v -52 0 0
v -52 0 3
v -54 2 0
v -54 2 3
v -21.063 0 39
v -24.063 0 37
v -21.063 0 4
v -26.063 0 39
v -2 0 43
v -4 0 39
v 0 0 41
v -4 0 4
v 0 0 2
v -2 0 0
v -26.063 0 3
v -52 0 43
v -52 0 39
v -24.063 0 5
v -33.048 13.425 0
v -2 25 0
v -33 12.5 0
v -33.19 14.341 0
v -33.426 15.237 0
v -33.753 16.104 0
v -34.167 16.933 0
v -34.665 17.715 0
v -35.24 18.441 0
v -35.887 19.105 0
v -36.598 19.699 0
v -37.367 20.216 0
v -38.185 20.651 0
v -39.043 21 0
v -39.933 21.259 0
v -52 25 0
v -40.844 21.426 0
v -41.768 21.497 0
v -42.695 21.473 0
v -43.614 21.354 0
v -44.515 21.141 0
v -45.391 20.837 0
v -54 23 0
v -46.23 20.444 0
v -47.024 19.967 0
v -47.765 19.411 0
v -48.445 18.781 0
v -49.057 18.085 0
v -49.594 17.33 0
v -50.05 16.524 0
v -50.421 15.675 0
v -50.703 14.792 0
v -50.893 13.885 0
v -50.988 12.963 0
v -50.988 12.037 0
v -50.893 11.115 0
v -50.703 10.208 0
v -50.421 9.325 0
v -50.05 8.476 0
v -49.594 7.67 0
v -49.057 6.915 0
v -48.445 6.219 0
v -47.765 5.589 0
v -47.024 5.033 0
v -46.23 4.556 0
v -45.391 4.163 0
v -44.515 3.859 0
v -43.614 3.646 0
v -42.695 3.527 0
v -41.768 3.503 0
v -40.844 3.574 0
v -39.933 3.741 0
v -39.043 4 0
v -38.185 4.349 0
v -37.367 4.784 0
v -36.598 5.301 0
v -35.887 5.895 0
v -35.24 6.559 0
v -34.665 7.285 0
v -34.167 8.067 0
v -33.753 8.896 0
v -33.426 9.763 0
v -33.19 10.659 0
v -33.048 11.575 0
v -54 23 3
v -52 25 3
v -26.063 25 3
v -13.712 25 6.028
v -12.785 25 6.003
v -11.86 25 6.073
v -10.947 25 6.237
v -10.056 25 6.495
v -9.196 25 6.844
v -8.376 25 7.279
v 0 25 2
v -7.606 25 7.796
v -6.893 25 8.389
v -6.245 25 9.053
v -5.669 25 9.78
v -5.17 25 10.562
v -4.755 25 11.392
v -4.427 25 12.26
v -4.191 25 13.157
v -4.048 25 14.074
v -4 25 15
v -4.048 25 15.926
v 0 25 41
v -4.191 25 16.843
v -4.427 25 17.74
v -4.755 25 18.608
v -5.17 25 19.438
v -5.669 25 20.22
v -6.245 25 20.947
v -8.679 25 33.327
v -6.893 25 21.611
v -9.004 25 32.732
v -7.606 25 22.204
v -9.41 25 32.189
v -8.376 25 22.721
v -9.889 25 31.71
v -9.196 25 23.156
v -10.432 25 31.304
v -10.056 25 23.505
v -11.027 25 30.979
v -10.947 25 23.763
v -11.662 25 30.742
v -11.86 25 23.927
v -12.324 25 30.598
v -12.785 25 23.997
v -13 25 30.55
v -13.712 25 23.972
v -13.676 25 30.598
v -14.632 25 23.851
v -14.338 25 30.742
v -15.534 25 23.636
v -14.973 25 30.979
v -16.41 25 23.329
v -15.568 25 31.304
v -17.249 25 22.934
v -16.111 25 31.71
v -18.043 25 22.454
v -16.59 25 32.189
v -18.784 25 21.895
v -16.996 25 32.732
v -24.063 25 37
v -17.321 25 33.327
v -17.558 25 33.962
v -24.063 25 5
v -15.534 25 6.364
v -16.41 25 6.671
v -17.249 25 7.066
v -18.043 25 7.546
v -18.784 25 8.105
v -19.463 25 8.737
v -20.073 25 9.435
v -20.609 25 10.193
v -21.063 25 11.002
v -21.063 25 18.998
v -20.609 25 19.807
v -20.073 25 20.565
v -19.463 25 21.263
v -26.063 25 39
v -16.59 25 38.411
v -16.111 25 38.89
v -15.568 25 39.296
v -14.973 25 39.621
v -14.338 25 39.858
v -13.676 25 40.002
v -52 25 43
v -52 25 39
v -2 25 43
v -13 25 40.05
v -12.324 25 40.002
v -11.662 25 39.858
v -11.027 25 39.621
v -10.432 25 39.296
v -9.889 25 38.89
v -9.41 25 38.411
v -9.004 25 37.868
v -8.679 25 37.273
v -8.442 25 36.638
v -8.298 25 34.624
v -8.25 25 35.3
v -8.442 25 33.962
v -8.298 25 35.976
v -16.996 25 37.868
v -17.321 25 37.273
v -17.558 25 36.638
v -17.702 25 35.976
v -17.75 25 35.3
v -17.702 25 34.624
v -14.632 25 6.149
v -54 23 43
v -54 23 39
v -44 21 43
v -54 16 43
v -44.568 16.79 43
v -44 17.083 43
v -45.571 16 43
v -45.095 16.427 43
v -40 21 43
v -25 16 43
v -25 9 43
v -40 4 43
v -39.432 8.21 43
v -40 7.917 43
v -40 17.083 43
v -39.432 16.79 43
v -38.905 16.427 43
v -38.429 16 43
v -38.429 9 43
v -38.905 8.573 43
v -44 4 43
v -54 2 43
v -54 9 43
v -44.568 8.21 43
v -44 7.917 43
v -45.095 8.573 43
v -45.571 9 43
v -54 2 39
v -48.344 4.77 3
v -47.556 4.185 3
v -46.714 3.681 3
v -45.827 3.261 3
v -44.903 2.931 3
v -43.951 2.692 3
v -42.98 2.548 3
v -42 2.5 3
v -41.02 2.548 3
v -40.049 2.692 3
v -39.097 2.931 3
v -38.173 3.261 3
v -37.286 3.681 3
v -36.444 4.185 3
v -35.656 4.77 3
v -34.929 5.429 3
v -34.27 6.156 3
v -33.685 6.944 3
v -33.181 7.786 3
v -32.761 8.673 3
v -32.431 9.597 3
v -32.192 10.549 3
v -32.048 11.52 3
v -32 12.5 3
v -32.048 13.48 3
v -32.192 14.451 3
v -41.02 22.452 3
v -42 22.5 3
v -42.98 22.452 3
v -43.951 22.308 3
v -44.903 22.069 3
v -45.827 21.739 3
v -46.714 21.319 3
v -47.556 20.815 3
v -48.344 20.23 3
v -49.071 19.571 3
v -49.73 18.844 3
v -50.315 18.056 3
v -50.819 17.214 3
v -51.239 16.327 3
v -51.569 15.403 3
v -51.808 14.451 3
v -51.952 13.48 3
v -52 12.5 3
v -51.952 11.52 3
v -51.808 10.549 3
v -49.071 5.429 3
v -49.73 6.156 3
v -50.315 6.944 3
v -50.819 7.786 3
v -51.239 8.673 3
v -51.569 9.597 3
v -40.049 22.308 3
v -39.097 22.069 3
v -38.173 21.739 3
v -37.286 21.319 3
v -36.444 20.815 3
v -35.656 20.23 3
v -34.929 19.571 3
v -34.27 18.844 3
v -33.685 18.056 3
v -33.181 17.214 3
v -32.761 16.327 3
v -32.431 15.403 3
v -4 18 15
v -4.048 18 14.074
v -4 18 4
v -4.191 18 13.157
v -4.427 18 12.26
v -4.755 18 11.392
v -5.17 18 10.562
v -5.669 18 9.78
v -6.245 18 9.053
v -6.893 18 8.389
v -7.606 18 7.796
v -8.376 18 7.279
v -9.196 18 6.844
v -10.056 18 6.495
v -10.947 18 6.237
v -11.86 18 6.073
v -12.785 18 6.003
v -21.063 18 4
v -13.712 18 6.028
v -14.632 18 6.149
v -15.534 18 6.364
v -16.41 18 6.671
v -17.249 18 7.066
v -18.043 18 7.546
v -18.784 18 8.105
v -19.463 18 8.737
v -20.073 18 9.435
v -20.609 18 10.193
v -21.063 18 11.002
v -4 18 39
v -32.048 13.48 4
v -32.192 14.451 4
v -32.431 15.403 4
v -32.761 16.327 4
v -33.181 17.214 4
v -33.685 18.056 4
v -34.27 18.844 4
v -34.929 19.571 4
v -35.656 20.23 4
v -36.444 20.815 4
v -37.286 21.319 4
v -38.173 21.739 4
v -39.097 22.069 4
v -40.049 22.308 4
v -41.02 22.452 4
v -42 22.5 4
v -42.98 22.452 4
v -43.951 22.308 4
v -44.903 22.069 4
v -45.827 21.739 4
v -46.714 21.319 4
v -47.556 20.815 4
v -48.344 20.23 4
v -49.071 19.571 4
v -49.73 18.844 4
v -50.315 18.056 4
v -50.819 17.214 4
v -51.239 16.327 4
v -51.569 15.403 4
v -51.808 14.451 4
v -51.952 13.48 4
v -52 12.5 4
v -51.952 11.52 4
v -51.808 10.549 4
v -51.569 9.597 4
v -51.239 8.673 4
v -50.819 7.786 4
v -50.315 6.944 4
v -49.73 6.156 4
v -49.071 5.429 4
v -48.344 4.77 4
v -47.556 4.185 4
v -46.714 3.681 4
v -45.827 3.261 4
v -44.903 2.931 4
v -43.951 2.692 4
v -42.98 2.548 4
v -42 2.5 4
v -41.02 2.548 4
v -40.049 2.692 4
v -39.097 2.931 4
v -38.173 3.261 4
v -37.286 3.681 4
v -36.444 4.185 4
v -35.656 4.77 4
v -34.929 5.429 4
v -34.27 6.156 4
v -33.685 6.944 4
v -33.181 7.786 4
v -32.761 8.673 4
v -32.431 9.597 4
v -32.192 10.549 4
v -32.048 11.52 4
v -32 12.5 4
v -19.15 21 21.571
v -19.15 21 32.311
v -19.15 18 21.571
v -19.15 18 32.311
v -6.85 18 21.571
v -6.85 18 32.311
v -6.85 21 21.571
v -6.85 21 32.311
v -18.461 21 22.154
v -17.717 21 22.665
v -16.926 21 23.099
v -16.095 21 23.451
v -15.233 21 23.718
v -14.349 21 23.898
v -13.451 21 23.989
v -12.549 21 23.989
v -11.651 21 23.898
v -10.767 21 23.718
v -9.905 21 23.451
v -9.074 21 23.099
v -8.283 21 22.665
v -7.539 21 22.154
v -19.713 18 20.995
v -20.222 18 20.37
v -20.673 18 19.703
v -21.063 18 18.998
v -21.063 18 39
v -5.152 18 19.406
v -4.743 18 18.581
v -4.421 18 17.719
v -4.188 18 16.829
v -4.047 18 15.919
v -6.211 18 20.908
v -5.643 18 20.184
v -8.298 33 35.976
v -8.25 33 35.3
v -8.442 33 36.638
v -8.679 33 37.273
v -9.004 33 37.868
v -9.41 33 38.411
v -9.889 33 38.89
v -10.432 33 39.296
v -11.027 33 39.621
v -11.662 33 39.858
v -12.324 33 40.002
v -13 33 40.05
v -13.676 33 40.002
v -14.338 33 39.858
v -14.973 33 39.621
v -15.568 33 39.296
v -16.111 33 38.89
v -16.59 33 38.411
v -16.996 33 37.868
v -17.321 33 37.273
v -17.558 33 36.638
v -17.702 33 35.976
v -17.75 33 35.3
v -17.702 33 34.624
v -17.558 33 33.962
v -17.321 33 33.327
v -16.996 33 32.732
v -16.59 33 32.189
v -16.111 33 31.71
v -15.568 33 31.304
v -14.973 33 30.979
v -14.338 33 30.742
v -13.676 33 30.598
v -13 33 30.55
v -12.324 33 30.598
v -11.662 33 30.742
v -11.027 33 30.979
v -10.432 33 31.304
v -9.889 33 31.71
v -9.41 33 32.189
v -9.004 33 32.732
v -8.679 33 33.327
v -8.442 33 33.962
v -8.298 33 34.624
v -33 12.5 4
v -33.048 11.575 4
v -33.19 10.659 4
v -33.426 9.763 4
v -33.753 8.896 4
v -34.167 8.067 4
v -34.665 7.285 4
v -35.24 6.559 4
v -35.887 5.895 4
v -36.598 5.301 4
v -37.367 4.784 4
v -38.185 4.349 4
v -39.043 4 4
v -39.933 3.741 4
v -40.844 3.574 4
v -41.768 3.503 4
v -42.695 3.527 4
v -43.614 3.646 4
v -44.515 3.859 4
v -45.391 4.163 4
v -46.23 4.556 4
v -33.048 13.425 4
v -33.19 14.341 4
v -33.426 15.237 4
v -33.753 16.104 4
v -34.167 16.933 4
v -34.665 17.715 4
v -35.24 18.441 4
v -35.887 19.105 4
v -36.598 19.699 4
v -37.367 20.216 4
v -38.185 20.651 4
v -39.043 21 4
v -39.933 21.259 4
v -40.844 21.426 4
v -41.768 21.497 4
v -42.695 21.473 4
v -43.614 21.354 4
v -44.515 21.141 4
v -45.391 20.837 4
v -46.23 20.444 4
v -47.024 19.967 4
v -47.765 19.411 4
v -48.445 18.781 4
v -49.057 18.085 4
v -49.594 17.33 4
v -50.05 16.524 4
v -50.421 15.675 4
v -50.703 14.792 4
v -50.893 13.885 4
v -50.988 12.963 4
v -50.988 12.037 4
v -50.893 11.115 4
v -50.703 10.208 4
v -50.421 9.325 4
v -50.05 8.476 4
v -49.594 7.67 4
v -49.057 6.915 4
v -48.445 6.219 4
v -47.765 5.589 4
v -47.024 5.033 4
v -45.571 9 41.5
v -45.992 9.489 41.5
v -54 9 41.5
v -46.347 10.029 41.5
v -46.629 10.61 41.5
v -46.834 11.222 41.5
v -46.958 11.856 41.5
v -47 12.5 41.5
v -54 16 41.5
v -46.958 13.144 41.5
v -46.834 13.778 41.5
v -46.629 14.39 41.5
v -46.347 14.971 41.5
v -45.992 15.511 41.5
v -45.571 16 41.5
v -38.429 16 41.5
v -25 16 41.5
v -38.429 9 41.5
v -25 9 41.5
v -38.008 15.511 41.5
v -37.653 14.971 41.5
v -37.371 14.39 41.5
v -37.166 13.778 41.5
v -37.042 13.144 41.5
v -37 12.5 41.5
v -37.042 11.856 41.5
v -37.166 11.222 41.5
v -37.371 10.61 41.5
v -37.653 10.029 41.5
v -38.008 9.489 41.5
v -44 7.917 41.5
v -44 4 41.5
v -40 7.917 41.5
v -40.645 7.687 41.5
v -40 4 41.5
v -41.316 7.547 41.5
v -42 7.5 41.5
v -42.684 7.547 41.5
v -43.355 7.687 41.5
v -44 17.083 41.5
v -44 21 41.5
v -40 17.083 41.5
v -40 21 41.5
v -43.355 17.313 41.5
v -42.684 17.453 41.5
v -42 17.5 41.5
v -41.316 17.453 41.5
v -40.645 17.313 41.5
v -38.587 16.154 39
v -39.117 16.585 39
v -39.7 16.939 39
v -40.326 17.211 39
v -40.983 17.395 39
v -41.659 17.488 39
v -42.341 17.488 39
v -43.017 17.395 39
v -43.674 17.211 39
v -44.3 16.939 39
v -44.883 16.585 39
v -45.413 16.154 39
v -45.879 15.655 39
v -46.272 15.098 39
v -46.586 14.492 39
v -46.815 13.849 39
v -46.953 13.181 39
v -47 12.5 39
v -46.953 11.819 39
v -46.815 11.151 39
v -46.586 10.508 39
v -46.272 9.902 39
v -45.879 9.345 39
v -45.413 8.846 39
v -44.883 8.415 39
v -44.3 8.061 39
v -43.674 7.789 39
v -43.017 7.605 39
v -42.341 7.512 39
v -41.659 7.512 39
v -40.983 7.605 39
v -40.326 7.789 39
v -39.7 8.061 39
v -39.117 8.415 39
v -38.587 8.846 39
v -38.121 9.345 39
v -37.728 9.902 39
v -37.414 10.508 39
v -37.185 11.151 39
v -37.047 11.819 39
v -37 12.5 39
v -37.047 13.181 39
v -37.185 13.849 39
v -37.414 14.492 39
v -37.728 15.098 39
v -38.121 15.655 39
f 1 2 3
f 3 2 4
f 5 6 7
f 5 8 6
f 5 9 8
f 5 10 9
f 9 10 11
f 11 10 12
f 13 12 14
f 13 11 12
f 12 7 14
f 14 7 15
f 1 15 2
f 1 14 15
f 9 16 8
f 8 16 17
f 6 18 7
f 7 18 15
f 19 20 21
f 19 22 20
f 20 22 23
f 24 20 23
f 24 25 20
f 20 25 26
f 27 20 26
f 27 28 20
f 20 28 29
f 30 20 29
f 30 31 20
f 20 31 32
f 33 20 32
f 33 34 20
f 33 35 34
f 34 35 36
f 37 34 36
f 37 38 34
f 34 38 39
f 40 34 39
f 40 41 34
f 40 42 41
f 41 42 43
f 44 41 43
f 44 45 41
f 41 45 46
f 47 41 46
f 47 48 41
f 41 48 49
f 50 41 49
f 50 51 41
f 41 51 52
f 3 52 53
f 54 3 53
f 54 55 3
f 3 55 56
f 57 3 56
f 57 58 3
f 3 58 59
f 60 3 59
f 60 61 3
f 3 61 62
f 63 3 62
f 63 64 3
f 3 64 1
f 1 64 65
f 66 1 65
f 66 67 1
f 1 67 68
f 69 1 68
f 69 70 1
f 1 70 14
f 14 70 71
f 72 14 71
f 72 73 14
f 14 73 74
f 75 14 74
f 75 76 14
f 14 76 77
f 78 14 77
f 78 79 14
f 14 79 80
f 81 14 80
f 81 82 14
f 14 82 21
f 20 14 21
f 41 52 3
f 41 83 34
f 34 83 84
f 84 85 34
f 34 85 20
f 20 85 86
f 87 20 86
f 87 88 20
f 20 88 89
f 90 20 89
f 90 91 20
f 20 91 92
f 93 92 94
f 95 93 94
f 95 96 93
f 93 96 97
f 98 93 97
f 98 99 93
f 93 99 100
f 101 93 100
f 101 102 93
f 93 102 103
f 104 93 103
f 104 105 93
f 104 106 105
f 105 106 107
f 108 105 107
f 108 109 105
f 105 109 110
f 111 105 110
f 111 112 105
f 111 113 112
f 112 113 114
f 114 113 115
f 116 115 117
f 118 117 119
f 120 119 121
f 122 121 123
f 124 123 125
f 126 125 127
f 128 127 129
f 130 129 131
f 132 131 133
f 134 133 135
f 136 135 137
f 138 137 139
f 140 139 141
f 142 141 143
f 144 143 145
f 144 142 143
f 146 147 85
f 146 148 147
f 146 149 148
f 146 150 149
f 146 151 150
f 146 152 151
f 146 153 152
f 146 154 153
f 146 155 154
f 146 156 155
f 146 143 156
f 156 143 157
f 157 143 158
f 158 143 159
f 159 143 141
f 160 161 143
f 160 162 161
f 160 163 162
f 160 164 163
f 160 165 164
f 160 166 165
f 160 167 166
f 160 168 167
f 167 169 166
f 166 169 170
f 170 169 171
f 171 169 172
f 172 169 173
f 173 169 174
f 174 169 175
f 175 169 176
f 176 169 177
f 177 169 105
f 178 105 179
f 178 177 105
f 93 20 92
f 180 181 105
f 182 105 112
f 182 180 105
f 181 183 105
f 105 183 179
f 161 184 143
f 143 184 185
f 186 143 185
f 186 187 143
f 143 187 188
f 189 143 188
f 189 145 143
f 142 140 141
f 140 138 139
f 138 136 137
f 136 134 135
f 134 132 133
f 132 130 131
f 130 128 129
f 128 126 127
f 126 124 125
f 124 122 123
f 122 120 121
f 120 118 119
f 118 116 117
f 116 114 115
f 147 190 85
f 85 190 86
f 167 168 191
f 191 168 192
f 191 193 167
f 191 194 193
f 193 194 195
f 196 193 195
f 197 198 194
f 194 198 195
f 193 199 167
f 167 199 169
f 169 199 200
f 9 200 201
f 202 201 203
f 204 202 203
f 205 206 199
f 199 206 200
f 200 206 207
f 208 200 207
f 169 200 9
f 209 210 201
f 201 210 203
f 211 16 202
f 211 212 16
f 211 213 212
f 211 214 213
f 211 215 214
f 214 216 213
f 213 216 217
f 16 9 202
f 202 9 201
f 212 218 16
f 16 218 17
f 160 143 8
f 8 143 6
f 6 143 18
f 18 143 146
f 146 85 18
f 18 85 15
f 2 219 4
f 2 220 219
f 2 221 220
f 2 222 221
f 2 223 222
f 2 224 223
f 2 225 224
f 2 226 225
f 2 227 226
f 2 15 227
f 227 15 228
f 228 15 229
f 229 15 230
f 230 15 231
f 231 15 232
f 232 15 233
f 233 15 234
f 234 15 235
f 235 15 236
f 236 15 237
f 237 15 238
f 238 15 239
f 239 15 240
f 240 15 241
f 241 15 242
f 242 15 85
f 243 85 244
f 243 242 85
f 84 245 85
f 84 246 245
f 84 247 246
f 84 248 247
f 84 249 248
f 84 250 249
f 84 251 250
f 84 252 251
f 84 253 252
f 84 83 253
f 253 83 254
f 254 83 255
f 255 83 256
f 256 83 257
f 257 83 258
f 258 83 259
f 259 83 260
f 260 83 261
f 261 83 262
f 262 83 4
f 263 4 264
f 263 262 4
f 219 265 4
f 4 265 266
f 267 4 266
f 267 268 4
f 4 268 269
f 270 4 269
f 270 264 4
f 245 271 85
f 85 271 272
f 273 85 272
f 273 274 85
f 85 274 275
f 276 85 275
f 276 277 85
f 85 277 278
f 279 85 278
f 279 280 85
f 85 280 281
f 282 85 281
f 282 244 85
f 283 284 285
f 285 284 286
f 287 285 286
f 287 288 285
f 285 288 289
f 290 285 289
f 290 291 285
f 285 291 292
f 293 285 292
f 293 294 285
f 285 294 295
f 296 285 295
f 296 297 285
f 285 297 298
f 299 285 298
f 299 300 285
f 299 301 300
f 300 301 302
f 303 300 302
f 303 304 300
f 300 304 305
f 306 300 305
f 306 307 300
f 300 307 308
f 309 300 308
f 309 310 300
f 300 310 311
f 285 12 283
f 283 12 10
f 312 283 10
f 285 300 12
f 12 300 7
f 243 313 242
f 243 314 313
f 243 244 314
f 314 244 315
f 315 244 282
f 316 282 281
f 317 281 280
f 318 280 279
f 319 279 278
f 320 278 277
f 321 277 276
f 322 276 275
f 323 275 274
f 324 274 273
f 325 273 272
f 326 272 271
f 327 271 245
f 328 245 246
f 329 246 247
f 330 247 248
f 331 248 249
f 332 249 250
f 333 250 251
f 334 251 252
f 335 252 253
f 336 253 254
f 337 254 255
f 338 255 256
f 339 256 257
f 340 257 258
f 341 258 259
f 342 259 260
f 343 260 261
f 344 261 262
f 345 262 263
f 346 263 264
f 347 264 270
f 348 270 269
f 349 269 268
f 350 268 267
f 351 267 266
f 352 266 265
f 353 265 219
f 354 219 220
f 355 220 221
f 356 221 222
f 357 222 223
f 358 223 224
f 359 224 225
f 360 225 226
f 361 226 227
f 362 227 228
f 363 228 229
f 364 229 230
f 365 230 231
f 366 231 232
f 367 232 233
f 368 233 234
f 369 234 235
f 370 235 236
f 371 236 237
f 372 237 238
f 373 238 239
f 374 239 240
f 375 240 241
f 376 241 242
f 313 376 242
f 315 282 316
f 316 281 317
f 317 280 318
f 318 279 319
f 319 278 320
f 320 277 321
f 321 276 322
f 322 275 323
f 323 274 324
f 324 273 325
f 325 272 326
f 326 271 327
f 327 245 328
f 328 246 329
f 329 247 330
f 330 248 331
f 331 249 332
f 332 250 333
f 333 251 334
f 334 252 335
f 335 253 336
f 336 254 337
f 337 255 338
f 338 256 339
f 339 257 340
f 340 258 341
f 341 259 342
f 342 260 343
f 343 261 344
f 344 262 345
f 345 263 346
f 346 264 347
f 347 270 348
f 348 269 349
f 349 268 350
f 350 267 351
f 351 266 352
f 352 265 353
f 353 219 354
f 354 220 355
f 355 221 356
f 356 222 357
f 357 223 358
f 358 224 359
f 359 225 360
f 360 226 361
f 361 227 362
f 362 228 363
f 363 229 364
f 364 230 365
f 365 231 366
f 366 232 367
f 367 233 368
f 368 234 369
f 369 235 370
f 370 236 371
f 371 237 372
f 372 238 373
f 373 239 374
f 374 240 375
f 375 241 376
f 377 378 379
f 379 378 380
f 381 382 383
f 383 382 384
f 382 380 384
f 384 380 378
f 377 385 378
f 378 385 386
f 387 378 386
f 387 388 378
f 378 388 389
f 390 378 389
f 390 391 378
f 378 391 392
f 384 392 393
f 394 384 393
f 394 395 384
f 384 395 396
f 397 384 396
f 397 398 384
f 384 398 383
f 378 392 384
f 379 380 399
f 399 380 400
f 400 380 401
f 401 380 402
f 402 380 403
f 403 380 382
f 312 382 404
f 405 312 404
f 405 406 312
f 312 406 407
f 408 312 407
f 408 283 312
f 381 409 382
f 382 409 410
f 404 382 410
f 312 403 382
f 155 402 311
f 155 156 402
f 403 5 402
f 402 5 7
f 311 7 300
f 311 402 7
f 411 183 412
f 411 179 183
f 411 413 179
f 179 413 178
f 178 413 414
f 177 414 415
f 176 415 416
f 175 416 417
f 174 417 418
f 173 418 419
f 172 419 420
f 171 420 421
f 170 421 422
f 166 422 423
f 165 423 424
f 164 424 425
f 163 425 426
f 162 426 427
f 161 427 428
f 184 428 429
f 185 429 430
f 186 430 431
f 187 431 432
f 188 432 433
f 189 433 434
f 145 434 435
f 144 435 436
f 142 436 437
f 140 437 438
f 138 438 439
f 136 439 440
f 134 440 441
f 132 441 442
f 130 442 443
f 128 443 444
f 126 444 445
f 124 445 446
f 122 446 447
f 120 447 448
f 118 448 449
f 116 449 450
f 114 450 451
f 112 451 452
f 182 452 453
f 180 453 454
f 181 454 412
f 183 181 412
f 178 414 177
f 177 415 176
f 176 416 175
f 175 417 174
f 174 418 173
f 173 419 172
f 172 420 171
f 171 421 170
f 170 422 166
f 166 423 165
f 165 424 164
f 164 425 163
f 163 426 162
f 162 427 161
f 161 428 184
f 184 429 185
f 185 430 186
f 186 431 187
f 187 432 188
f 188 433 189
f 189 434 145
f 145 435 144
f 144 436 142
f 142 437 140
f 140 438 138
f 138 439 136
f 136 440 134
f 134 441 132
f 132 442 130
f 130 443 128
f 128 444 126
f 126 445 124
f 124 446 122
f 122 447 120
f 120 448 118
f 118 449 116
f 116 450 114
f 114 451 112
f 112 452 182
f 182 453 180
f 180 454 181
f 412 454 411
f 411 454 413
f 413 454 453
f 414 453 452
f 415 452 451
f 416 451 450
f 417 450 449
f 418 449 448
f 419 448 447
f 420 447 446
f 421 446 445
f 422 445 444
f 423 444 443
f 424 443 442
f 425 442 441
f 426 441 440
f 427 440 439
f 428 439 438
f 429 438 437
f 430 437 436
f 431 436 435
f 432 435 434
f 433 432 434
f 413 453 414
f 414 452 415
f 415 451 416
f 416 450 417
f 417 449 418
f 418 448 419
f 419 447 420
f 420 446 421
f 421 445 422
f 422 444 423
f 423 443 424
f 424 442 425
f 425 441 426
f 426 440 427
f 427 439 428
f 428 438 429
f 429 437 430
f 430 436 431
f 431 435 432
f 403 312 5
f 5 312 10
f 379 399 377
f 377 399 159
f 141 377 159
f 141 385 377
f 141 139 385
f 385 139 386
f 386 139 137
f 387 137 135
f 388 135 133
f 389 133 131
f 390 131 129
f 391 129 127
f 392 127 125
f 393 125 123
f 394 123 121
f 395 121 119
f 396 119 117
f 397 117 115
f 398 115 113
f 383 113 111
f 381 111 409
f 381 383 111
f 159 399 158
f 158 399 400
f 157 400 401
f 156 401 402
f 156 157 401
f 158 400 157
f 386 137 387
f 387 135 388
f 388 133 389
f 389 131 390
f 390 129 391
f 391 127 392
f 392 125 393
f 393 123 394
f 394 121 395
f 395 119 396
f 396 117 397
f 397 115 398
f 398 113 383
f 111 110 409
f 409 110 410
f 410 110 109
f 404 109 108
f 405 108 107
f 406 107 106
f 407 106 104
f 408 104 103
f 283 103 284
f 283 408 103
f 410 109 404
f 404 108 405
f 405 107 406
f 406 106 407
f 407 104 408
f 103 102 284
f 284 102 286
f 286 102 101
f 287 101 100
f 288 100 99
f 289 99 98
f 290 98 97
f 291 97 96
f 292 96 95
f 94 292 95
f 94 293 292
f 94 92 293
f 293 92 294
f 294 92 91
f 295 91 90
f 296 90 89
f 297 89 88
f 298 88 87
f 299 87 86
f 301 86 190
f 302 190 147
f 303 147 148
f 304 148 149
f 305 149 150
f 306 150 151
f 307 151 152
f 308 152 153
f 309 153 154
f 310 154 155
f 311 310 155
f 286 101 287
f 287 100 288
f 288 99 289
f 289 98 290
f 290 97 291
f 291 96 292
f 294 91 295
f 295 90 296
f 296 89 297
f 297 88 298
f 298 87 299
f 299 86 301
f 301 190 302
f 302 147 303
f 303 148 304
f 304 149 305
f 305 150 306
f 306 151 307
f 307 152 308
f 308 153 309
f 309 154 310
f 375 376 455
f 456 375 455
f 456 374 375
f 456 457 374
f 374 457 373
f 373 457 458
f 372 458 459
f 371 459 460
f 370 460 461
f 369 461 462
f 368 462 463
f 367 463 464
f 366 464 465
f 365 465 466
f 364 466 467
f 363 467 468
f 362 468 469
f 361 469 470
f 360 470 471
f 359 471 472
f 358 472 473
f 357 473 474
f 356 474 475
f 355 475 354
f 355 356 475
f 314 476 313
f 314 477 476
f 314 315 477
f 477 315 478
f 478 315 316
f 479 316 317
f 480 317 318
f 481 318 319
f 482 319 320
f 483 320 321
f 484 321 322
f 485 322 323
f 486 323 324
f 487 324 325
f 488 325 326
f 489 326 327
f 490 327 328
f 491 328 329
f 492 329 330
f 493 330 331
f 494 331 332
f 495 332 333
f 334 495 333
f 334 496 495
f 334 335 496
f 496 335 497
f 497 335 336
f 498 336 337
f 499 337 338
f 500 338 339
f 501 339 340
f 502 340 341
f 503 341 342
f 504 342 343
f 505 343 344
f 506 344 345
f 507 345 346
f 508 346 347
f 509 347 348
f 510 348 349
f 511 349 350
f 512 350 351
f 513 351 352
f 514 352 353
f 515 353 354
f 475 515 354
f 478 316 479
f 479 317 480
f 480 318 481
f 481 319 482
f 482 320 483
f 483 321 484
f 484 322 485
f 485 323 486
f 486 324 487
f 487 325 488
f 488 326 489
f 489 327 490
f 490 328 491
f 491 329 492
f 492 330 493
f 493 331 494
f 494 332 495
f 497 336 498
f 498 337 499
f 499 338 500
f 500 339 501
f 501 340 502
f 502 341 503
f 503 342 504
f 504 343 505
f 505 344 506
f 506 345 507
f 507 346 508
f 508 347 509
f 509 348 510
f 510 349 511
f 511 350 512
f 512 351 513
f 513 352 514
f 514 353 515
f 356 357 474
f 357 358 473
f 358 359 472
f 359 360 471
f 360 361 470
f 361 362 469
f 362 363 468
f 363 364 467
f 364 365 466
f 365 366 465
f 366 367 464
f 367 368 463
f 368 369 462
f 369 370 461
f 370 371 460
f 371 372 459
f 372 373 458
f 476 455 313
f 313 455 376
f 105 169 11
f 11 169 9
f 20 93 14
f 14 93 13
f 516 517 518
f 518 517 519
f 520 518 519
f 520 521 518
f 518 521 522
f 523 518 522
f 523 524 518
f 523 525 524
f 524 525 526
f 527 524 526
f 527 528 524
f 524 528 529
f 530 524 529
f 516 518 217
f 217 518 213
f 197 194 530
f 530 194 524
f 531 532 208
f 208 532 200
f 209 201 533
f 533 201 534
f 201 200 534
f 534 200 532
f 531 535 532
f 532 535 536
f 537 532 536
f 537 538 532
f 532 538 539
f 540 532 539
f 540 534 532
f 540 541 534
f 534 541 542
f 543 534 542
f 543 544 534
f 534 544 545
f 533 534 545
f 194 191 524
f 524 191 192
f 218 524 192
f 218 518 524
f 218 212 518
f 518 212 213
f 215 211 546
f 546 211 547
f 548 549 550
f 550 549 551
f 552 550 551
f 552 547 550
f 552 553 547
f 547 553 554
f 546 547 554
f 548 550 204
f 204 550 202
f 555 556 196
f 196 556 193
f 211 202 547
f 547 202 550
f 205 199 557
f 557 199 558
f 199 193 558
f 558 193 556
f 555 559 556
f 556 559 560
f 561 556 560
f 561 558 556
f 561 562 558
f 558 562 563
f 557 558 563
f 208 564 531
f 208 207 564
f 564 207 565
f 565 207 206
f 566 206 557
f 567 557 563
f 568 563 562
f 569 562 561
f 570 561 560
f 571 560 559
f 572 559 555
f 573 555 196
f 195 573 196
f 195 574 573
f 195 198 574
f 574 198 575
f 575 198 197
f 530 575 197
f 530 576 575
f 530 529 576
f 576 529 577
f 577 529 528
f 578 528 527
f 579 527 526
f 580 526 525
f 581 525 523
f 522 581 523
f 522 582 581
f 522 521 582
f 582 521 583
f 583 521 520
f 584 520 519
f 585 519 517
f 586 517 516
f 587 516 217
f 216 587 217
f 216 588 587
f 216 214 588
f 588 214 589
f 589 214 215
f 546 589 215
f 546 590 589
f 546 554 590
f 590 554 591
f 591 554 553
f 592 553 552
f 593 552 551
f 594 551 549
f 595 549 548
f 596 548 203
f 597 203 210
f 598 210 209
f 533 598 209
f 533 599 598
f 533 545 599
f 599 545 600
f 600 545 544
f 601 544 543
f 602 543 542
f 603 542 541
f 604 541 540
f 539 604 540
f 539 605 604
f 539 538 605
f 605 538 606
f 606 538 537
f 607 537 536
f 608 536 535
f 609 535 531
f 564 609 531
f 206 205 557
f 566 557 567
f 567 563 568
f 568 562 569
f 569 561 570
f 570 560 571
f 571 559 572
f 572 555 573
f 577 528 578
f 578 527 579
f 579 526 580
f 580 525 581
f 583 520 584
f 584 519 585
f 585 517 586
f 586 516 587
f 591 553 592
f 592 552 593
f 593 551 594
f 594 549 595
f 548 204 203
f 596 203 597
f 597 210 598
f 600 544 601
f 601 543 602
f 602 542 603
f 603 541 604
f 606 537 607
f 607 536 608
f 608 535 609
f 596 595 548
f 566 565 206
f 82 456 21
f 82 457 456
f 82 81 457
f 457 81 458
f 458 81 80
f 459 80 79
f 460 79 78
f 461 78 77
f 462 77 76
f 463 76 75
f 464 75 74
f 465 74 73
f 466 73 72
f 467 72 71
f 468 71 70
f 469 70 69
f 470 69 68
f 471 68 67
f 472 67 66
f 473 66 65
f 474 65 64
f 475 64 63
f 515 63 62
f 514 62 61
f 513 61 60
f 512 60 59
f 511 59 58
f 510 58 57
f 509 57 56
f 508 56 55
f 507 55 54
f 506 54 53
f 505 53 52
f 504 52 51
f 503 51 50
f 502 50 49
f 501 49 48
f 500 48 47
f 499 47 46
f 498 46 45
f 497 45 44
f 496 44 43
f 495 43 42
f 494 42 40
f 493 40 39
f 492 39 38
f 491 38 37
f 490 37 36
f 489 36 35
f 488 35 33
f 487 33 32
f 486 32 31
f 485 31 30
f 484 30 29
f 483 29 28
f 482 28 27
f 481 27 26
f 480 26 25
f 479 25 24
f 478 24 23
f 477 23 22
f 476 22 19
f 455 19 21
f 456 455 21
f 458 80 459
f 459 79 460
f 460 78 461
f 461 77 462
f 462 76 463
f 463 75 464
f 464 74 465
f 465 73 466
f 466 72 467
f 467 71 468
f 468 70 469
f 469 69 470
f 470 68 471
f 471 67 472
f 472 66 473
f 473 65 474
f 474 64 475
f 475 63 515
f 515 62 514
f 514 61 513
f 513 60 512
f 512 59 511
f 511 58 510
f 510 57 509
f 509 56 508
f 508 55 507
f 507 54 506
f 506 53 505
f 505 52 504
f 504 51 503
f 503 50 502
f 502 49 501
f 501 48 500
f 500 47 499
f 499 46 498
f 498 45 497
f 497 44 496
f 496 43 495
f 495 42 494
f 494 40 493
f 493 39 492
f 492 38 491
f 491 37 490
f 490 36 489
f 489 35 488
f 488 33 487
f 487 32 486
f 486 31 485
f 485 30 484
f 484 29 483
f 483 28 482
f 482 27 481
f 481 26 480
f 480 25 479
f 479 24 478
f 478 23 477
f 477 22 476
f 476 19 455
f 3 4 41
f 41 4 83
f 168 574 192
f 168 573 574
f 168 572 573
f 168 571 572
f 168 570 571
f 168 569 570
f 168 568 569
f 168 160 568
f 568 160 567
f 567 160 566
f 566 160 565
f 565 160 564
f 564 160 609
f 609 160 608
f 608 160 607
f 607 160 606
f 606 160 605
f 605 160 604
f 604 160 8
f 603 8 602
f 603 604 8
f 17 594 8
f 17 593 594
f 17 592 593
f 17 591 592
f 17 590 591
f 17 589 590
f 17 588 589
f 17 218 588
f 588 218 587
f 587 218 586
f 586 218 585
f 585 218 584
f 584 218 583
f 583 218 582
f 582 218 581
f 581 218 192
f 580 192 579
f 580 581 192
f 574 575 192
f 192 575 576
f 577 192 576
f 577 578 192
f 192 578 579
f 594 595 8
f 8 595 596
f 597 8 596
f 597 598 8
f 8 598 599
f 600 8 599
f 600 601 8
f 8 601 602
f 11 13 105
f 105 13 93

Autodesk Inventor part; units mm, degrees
ref_plane "YZ Plane" through (0, 0, 0) normal (1, 0, 0) x (0, 1, 0)
ref_plane "XZ Plane" through (0, 0, 0) normal (0, 1, 0) x (-1, 0, 0)
ref_plane "XY Plane" through (0, 0, 0) normal (0, 0, 1) x (1, 0, 0)
sketch "Boceto1" plane through (0, 0, 0) normal (0, 1, 0) x (-1, 0, 0)
  line L0 (0, 0) -> (4, 0)
  line L1 (4, 0) -> (4, 43)
  line L2 (4, 43) -> (0, 43)
  line L3 (0, 43) -> (0, 0)
  line L4 (4, 43) -> (54, 43)
  line L5 (54, 43) -> (54, 39)
  line L6 (54, 39) -> (4, 39)
  line L7 (4, 39) -> (4, 43)
  line L8 (4, 0) -> (54, 0)
  line L9 (54, 0) -> (54, 4)
  line L10 (54, 4) -> (4, 4)
  line L11 (4, 4) -> (4, 0)
  dimension "d4" = 43
  dimension "d5" = 50
  dimension "d6" = 4
  dimension "d7" = 50
  dimension "d8" = 4
  dimension "d54" = 4
extrude "Extrusión1" add sketch "Boceto1" along normal blind 25
sketch "Boceto3" plane through (-54, 0, 4) normal (0, 0, 1) x (1, 0, 0)
  line L0 (0, 0) -> (0, 25) projected
  circle A0 centre (12, 12.5) radius 9
  point P0 (54, 0)
  point P1 (0, 12.5)
  dimension "d19" = 18
  dimension "d20" = 12
extrude "Extrusión2" cut sketch "Boceto3" against normal blind 8 and the other way blind 2
sketch "Boceto8" plane through (-54, 0, 43) normal (0, 0, 1) x (1, 0, 0)
  circle A0 centre (12, 12.5) radius 5
  line L0 (0, 0) -> (0, 25) projected
  line L1 (0, 9) -> (0, 16)
  point P0 (0, 12.5)
  dimension "d40" = 10
  dimension "d42" = 12
extrude "Extrusión7" cut sketch "Boceto8" against normal blind 5
sketch "Boceto9" plane through (-54, 0, 43) normal (0, 0, 1) x (1, 0, 0)
  circle A0 centre (12, 12.5) radius 5 projected
  line L0 (0, 16) -> (29, 16)
  line L1 (29, 16) -> (29, 9)
  line L2 (29, 9) -> (0, 9)
  line L3 (0, 9) -> (0, 16)
  dimension "d44" = 17
  dimension "d45" = 7
sketch "Boceto10" plane through (-54, 0, 43) normal (0, 0, 1) x (1, 0, 0)
  circle A0 centre (12, 12.5) radius 5 projected
  line L0 (0, 0) -> (0, 25) projected
  line L1 (10, 21) -> (14, 21)
  line L2 (14, 21) -> (14, 4)
  line L3 (14, 4) -> (10, 4)
  line L4 (10, 4) -> (10, 21)
  point P0 (10, 12.5)
  point P1 (0, 12.5)
  point P2 (12, 21)
  dimension "d48" = 4
  dimension "d49" = 17
extrude "Extrusión8" cut sketch "Boceto10" against normal blind 1.5 contours L2 A0 L4 | A0 L4 L1 L2 | L2 L3 L4 A0
extrude "Extrusión9" cut sketch "Boceto9" against normal blind 1.5 contours A0 L2 L0 | A0 L0 L1 L2 | A0 L2 L3 L0
chamfer "Chaflán1" distance 2 angle 45 1 edges at (0, 12.5, 0)
chamfer "Chaflán2" distance 2 angle 45 1 edges at (0, 12.5, 43)
sketch "Boceto13" plane through (-54, 0, 4) normal (0, 0, 1) x (1, 0, 0)
  line L0 (0, 25) -> (50, 25) projected
  line L1 (29.9369, 25) -> (49.9369, 25)
  line L2 (49.9369, 25) -> (49.9369, 0)
  line L3 (49.9369, 0) -> (29.9369, 0)
  line L4 (29.9369, 0) -> (29.9369, 25)
  point P0 (54, 0)
  dimension "d80" = 20
  dimension "d81" = 25
extrude "Extrusión12" add sketch "Boceto13" along normal blind 5
sketch "Boceto14" plane through (-54, 0, 9) normal (0, 0, 1) x (1, 0, 0)
  line L0 (49.9369, 25) -> (32.9369, 25)
  line L1 (32.9369, 25) -> (32.9369, -5)
  line L2 (32.9369, -5) -> (49.9369, -5)
  line L3 (49.9369, -5) -> (49.9369, 25)
  dimension "d84" = 17
  dimension "d85" = 30
extrude "Extrusión13" cut sketch "Boceto14" against normal blind 5
sketch "Boceto15" plane through (-4, 0, 4) normal (0, 0, 1) x (1, 0, 0)
  line L0 (0, 25) -> (0, 0) projected
  line L1 (-17.0631, 25) -> (0, 25)
  line L2 (0, 25) -> (0, 21)
  line L3 (0, 21) -> (-17.0631, 21)
  line L4 (-17.0631, 21) -> (-17.0631, 25)
  point P0 (4, 0)
extrude "Extrusión14" add sketch "Boceto15" along normal up to next
sketch "Boceto16" plane through (0, 25, 0) normal (0, 1, 0) x (1, 0, 0)
  circle A0 centre (-13, -15) radius 9
  line L0 (-21.0631, -4) -> (-4, -4) projected
  line L1 (-4, -39) -> (-4, -4) projected
  point P0 (0, 0)
  dimension "d90" = 11
  dimension "d91" = 18
extrude "Extrusión15" cut sketch "Boceto16" against normal blind 5
sketch "Boceto17" plane through (-4, 0, 39) normal (0, 0, -1) x (-1, 0, 0)
  line L0 (0, 0) -> (50, 0) projected
  line L1 (17.0631, 25) -> (20.0631, 25)
  line L2 (20.0631, 25) -> (20.0631, 0)
  line L3 (20.0631, 0) -> (17.0631, 0)
  line L4 (17.0631, 0) -> (17.0631, 25)
  point P0 (-4, 0)
  dimension "d94" = 3
extrude "Extrusión16" add sketch "Boceto17" along normal up to next
sketch "Boceto18" plane through (0, 25, 0) normal (0, 1, 0) x (1, 0, 0)
  circle A0 centre (-13, -15) radius 9 projected
  line L0 (-54, -43) -> (-2, -43) projected
  circle A1 centre (-13, -35.3) radius 4.75
  point P0 (0, 0)
  dimension "d97" = 9.5
  dimension "d98" = 7.7
extrude "Extrusión17" add sketch "Boceto18" along normal blind 8 contours A1
sketch "Boceto20" plane through (-21.0631, 21, 39) normal (0, -1, 0) x (1, 0, 0)
  arc A0 (17.0631, -24) -> (0, -20.0018) centre (8.0631, -24) ccw projected
  line L0 (0, -20.0018) -> (0, 0) projected
  line L1 (0, 0) -> (17.0631, 0)
  line L2 (17.0631, 0) -> (17.0631, -24)
  line L3 (17.0631, -24) -> (0, -24)
  line L4 (0, -24) -> (0, 0)
  point P0 (21.0631, -39)
extrude "Extrusión19" add sketch "Boceto20" along normal blind 3 contours A0 L0 L1 L2
sketch "Boceto21" plane through (-21.0631, 18, 39) normal (0, -1, 0) x (1, 0, 0)
  arc A0 (17.0631, -24) -> (0, -20.0018) centre (8.0631, -24) ccw projected
  line L0 (1.9131, -30.2886) -> (14.2131, -30.2886)
  line L1 (14.2131, -30.2886) -> (14.2131, -6.6886)
  line L2 (14.2131, -6.6886) -> (1.9131, -6.6886)
  line L3 (1.9131, -6.6886) -> (1.9131, -30.2886)
  point P0 (21.0631, -39)
  point P1 (8.0631, -30.2886)
  dimension "d108" = 12.3
  dimension "d109" = 23.6
extrude "Extrusión20" cut sketch "Boceto21" against normal blind 3
sketch "Boceto23" plane through (-54, 0, 4) normal (0, 0, 1) x (1, 0, 0)
  circle A0 centre (12, 12.5) radius 9 projected
  line L0 (29.9369, 0) -> (29.9369, 25) projected
  line L1 (0, 25) -> (29.9369, 25) projected
  line L2 (0, 0) -> (0, 25) projected
  line L3 (0, 0) -> (29.9369, 0) projected
  circle A1 centre (12, 12.5) radius 10
  point P0 (54, 0)
  dimension "d114" = 20
extrude "Extrusión22" cut sketch "Boceto23" against normal blind 1 contours L3 L2 L1 L0
sketch "Boceto24" plane through (-13, 21, 4) normal (0, -1, 0) x (1, 0, 0)
  arc A0 (0, 0) -> (9, 11) centre (0, 9) ccw projected
  line L0 (9, 0) -> (-8.0631, 0) projected
  line L1 (9, 11) -> (9, 0) projected
  point P0 (13, -4)
sketch "Boceto25" plane through (-21.0631, 21, 4) normal (0, -1, 0) x (1, 0, 0)
  arc A0 (0, 7.0018) -> (17.0631, 11) centre (8.0631, 11) ccw projected
  line L0 (0, 0) -> (0, 7.0018) projected
  line L1 (17.0631, 0) -> (0, 0) projected
  point P0 (8.0631, 0)
  point P1 (21.0631, -4)
sketch "Boceto26" plane through (-21.0631, 21, 4) normal (0, -1, 0) x (1, 0, 0)
  arc A0 (0, 7.0018) -> (17.0631, 11) centre (8.0631, 11) ccw projected
  line L0 (0, 0) -> (0, 7.0018) projected
  line L1 (17.0631, 0) -> (0, 0) projected
  line L2 (17.0631, 11) -> (17.0631, 0) projected
  point P0 (21.0631, -4)
extrude "Extrusión25" add sketch "Boceto26" along normal blind 3
chamfer "Chaflán5" distance 2 angle 45 2 edges at (-24.0631, 12.5, 3) (-24.0631, 12.5, 39)
chamfer "Chaflán6" distance 2 angle 45 4 edges at (-54, 0, 41) (-54, 25, 41) (-54, 25, 1.5) (-54, 0, 1.5)
properties part number "Pinza"
